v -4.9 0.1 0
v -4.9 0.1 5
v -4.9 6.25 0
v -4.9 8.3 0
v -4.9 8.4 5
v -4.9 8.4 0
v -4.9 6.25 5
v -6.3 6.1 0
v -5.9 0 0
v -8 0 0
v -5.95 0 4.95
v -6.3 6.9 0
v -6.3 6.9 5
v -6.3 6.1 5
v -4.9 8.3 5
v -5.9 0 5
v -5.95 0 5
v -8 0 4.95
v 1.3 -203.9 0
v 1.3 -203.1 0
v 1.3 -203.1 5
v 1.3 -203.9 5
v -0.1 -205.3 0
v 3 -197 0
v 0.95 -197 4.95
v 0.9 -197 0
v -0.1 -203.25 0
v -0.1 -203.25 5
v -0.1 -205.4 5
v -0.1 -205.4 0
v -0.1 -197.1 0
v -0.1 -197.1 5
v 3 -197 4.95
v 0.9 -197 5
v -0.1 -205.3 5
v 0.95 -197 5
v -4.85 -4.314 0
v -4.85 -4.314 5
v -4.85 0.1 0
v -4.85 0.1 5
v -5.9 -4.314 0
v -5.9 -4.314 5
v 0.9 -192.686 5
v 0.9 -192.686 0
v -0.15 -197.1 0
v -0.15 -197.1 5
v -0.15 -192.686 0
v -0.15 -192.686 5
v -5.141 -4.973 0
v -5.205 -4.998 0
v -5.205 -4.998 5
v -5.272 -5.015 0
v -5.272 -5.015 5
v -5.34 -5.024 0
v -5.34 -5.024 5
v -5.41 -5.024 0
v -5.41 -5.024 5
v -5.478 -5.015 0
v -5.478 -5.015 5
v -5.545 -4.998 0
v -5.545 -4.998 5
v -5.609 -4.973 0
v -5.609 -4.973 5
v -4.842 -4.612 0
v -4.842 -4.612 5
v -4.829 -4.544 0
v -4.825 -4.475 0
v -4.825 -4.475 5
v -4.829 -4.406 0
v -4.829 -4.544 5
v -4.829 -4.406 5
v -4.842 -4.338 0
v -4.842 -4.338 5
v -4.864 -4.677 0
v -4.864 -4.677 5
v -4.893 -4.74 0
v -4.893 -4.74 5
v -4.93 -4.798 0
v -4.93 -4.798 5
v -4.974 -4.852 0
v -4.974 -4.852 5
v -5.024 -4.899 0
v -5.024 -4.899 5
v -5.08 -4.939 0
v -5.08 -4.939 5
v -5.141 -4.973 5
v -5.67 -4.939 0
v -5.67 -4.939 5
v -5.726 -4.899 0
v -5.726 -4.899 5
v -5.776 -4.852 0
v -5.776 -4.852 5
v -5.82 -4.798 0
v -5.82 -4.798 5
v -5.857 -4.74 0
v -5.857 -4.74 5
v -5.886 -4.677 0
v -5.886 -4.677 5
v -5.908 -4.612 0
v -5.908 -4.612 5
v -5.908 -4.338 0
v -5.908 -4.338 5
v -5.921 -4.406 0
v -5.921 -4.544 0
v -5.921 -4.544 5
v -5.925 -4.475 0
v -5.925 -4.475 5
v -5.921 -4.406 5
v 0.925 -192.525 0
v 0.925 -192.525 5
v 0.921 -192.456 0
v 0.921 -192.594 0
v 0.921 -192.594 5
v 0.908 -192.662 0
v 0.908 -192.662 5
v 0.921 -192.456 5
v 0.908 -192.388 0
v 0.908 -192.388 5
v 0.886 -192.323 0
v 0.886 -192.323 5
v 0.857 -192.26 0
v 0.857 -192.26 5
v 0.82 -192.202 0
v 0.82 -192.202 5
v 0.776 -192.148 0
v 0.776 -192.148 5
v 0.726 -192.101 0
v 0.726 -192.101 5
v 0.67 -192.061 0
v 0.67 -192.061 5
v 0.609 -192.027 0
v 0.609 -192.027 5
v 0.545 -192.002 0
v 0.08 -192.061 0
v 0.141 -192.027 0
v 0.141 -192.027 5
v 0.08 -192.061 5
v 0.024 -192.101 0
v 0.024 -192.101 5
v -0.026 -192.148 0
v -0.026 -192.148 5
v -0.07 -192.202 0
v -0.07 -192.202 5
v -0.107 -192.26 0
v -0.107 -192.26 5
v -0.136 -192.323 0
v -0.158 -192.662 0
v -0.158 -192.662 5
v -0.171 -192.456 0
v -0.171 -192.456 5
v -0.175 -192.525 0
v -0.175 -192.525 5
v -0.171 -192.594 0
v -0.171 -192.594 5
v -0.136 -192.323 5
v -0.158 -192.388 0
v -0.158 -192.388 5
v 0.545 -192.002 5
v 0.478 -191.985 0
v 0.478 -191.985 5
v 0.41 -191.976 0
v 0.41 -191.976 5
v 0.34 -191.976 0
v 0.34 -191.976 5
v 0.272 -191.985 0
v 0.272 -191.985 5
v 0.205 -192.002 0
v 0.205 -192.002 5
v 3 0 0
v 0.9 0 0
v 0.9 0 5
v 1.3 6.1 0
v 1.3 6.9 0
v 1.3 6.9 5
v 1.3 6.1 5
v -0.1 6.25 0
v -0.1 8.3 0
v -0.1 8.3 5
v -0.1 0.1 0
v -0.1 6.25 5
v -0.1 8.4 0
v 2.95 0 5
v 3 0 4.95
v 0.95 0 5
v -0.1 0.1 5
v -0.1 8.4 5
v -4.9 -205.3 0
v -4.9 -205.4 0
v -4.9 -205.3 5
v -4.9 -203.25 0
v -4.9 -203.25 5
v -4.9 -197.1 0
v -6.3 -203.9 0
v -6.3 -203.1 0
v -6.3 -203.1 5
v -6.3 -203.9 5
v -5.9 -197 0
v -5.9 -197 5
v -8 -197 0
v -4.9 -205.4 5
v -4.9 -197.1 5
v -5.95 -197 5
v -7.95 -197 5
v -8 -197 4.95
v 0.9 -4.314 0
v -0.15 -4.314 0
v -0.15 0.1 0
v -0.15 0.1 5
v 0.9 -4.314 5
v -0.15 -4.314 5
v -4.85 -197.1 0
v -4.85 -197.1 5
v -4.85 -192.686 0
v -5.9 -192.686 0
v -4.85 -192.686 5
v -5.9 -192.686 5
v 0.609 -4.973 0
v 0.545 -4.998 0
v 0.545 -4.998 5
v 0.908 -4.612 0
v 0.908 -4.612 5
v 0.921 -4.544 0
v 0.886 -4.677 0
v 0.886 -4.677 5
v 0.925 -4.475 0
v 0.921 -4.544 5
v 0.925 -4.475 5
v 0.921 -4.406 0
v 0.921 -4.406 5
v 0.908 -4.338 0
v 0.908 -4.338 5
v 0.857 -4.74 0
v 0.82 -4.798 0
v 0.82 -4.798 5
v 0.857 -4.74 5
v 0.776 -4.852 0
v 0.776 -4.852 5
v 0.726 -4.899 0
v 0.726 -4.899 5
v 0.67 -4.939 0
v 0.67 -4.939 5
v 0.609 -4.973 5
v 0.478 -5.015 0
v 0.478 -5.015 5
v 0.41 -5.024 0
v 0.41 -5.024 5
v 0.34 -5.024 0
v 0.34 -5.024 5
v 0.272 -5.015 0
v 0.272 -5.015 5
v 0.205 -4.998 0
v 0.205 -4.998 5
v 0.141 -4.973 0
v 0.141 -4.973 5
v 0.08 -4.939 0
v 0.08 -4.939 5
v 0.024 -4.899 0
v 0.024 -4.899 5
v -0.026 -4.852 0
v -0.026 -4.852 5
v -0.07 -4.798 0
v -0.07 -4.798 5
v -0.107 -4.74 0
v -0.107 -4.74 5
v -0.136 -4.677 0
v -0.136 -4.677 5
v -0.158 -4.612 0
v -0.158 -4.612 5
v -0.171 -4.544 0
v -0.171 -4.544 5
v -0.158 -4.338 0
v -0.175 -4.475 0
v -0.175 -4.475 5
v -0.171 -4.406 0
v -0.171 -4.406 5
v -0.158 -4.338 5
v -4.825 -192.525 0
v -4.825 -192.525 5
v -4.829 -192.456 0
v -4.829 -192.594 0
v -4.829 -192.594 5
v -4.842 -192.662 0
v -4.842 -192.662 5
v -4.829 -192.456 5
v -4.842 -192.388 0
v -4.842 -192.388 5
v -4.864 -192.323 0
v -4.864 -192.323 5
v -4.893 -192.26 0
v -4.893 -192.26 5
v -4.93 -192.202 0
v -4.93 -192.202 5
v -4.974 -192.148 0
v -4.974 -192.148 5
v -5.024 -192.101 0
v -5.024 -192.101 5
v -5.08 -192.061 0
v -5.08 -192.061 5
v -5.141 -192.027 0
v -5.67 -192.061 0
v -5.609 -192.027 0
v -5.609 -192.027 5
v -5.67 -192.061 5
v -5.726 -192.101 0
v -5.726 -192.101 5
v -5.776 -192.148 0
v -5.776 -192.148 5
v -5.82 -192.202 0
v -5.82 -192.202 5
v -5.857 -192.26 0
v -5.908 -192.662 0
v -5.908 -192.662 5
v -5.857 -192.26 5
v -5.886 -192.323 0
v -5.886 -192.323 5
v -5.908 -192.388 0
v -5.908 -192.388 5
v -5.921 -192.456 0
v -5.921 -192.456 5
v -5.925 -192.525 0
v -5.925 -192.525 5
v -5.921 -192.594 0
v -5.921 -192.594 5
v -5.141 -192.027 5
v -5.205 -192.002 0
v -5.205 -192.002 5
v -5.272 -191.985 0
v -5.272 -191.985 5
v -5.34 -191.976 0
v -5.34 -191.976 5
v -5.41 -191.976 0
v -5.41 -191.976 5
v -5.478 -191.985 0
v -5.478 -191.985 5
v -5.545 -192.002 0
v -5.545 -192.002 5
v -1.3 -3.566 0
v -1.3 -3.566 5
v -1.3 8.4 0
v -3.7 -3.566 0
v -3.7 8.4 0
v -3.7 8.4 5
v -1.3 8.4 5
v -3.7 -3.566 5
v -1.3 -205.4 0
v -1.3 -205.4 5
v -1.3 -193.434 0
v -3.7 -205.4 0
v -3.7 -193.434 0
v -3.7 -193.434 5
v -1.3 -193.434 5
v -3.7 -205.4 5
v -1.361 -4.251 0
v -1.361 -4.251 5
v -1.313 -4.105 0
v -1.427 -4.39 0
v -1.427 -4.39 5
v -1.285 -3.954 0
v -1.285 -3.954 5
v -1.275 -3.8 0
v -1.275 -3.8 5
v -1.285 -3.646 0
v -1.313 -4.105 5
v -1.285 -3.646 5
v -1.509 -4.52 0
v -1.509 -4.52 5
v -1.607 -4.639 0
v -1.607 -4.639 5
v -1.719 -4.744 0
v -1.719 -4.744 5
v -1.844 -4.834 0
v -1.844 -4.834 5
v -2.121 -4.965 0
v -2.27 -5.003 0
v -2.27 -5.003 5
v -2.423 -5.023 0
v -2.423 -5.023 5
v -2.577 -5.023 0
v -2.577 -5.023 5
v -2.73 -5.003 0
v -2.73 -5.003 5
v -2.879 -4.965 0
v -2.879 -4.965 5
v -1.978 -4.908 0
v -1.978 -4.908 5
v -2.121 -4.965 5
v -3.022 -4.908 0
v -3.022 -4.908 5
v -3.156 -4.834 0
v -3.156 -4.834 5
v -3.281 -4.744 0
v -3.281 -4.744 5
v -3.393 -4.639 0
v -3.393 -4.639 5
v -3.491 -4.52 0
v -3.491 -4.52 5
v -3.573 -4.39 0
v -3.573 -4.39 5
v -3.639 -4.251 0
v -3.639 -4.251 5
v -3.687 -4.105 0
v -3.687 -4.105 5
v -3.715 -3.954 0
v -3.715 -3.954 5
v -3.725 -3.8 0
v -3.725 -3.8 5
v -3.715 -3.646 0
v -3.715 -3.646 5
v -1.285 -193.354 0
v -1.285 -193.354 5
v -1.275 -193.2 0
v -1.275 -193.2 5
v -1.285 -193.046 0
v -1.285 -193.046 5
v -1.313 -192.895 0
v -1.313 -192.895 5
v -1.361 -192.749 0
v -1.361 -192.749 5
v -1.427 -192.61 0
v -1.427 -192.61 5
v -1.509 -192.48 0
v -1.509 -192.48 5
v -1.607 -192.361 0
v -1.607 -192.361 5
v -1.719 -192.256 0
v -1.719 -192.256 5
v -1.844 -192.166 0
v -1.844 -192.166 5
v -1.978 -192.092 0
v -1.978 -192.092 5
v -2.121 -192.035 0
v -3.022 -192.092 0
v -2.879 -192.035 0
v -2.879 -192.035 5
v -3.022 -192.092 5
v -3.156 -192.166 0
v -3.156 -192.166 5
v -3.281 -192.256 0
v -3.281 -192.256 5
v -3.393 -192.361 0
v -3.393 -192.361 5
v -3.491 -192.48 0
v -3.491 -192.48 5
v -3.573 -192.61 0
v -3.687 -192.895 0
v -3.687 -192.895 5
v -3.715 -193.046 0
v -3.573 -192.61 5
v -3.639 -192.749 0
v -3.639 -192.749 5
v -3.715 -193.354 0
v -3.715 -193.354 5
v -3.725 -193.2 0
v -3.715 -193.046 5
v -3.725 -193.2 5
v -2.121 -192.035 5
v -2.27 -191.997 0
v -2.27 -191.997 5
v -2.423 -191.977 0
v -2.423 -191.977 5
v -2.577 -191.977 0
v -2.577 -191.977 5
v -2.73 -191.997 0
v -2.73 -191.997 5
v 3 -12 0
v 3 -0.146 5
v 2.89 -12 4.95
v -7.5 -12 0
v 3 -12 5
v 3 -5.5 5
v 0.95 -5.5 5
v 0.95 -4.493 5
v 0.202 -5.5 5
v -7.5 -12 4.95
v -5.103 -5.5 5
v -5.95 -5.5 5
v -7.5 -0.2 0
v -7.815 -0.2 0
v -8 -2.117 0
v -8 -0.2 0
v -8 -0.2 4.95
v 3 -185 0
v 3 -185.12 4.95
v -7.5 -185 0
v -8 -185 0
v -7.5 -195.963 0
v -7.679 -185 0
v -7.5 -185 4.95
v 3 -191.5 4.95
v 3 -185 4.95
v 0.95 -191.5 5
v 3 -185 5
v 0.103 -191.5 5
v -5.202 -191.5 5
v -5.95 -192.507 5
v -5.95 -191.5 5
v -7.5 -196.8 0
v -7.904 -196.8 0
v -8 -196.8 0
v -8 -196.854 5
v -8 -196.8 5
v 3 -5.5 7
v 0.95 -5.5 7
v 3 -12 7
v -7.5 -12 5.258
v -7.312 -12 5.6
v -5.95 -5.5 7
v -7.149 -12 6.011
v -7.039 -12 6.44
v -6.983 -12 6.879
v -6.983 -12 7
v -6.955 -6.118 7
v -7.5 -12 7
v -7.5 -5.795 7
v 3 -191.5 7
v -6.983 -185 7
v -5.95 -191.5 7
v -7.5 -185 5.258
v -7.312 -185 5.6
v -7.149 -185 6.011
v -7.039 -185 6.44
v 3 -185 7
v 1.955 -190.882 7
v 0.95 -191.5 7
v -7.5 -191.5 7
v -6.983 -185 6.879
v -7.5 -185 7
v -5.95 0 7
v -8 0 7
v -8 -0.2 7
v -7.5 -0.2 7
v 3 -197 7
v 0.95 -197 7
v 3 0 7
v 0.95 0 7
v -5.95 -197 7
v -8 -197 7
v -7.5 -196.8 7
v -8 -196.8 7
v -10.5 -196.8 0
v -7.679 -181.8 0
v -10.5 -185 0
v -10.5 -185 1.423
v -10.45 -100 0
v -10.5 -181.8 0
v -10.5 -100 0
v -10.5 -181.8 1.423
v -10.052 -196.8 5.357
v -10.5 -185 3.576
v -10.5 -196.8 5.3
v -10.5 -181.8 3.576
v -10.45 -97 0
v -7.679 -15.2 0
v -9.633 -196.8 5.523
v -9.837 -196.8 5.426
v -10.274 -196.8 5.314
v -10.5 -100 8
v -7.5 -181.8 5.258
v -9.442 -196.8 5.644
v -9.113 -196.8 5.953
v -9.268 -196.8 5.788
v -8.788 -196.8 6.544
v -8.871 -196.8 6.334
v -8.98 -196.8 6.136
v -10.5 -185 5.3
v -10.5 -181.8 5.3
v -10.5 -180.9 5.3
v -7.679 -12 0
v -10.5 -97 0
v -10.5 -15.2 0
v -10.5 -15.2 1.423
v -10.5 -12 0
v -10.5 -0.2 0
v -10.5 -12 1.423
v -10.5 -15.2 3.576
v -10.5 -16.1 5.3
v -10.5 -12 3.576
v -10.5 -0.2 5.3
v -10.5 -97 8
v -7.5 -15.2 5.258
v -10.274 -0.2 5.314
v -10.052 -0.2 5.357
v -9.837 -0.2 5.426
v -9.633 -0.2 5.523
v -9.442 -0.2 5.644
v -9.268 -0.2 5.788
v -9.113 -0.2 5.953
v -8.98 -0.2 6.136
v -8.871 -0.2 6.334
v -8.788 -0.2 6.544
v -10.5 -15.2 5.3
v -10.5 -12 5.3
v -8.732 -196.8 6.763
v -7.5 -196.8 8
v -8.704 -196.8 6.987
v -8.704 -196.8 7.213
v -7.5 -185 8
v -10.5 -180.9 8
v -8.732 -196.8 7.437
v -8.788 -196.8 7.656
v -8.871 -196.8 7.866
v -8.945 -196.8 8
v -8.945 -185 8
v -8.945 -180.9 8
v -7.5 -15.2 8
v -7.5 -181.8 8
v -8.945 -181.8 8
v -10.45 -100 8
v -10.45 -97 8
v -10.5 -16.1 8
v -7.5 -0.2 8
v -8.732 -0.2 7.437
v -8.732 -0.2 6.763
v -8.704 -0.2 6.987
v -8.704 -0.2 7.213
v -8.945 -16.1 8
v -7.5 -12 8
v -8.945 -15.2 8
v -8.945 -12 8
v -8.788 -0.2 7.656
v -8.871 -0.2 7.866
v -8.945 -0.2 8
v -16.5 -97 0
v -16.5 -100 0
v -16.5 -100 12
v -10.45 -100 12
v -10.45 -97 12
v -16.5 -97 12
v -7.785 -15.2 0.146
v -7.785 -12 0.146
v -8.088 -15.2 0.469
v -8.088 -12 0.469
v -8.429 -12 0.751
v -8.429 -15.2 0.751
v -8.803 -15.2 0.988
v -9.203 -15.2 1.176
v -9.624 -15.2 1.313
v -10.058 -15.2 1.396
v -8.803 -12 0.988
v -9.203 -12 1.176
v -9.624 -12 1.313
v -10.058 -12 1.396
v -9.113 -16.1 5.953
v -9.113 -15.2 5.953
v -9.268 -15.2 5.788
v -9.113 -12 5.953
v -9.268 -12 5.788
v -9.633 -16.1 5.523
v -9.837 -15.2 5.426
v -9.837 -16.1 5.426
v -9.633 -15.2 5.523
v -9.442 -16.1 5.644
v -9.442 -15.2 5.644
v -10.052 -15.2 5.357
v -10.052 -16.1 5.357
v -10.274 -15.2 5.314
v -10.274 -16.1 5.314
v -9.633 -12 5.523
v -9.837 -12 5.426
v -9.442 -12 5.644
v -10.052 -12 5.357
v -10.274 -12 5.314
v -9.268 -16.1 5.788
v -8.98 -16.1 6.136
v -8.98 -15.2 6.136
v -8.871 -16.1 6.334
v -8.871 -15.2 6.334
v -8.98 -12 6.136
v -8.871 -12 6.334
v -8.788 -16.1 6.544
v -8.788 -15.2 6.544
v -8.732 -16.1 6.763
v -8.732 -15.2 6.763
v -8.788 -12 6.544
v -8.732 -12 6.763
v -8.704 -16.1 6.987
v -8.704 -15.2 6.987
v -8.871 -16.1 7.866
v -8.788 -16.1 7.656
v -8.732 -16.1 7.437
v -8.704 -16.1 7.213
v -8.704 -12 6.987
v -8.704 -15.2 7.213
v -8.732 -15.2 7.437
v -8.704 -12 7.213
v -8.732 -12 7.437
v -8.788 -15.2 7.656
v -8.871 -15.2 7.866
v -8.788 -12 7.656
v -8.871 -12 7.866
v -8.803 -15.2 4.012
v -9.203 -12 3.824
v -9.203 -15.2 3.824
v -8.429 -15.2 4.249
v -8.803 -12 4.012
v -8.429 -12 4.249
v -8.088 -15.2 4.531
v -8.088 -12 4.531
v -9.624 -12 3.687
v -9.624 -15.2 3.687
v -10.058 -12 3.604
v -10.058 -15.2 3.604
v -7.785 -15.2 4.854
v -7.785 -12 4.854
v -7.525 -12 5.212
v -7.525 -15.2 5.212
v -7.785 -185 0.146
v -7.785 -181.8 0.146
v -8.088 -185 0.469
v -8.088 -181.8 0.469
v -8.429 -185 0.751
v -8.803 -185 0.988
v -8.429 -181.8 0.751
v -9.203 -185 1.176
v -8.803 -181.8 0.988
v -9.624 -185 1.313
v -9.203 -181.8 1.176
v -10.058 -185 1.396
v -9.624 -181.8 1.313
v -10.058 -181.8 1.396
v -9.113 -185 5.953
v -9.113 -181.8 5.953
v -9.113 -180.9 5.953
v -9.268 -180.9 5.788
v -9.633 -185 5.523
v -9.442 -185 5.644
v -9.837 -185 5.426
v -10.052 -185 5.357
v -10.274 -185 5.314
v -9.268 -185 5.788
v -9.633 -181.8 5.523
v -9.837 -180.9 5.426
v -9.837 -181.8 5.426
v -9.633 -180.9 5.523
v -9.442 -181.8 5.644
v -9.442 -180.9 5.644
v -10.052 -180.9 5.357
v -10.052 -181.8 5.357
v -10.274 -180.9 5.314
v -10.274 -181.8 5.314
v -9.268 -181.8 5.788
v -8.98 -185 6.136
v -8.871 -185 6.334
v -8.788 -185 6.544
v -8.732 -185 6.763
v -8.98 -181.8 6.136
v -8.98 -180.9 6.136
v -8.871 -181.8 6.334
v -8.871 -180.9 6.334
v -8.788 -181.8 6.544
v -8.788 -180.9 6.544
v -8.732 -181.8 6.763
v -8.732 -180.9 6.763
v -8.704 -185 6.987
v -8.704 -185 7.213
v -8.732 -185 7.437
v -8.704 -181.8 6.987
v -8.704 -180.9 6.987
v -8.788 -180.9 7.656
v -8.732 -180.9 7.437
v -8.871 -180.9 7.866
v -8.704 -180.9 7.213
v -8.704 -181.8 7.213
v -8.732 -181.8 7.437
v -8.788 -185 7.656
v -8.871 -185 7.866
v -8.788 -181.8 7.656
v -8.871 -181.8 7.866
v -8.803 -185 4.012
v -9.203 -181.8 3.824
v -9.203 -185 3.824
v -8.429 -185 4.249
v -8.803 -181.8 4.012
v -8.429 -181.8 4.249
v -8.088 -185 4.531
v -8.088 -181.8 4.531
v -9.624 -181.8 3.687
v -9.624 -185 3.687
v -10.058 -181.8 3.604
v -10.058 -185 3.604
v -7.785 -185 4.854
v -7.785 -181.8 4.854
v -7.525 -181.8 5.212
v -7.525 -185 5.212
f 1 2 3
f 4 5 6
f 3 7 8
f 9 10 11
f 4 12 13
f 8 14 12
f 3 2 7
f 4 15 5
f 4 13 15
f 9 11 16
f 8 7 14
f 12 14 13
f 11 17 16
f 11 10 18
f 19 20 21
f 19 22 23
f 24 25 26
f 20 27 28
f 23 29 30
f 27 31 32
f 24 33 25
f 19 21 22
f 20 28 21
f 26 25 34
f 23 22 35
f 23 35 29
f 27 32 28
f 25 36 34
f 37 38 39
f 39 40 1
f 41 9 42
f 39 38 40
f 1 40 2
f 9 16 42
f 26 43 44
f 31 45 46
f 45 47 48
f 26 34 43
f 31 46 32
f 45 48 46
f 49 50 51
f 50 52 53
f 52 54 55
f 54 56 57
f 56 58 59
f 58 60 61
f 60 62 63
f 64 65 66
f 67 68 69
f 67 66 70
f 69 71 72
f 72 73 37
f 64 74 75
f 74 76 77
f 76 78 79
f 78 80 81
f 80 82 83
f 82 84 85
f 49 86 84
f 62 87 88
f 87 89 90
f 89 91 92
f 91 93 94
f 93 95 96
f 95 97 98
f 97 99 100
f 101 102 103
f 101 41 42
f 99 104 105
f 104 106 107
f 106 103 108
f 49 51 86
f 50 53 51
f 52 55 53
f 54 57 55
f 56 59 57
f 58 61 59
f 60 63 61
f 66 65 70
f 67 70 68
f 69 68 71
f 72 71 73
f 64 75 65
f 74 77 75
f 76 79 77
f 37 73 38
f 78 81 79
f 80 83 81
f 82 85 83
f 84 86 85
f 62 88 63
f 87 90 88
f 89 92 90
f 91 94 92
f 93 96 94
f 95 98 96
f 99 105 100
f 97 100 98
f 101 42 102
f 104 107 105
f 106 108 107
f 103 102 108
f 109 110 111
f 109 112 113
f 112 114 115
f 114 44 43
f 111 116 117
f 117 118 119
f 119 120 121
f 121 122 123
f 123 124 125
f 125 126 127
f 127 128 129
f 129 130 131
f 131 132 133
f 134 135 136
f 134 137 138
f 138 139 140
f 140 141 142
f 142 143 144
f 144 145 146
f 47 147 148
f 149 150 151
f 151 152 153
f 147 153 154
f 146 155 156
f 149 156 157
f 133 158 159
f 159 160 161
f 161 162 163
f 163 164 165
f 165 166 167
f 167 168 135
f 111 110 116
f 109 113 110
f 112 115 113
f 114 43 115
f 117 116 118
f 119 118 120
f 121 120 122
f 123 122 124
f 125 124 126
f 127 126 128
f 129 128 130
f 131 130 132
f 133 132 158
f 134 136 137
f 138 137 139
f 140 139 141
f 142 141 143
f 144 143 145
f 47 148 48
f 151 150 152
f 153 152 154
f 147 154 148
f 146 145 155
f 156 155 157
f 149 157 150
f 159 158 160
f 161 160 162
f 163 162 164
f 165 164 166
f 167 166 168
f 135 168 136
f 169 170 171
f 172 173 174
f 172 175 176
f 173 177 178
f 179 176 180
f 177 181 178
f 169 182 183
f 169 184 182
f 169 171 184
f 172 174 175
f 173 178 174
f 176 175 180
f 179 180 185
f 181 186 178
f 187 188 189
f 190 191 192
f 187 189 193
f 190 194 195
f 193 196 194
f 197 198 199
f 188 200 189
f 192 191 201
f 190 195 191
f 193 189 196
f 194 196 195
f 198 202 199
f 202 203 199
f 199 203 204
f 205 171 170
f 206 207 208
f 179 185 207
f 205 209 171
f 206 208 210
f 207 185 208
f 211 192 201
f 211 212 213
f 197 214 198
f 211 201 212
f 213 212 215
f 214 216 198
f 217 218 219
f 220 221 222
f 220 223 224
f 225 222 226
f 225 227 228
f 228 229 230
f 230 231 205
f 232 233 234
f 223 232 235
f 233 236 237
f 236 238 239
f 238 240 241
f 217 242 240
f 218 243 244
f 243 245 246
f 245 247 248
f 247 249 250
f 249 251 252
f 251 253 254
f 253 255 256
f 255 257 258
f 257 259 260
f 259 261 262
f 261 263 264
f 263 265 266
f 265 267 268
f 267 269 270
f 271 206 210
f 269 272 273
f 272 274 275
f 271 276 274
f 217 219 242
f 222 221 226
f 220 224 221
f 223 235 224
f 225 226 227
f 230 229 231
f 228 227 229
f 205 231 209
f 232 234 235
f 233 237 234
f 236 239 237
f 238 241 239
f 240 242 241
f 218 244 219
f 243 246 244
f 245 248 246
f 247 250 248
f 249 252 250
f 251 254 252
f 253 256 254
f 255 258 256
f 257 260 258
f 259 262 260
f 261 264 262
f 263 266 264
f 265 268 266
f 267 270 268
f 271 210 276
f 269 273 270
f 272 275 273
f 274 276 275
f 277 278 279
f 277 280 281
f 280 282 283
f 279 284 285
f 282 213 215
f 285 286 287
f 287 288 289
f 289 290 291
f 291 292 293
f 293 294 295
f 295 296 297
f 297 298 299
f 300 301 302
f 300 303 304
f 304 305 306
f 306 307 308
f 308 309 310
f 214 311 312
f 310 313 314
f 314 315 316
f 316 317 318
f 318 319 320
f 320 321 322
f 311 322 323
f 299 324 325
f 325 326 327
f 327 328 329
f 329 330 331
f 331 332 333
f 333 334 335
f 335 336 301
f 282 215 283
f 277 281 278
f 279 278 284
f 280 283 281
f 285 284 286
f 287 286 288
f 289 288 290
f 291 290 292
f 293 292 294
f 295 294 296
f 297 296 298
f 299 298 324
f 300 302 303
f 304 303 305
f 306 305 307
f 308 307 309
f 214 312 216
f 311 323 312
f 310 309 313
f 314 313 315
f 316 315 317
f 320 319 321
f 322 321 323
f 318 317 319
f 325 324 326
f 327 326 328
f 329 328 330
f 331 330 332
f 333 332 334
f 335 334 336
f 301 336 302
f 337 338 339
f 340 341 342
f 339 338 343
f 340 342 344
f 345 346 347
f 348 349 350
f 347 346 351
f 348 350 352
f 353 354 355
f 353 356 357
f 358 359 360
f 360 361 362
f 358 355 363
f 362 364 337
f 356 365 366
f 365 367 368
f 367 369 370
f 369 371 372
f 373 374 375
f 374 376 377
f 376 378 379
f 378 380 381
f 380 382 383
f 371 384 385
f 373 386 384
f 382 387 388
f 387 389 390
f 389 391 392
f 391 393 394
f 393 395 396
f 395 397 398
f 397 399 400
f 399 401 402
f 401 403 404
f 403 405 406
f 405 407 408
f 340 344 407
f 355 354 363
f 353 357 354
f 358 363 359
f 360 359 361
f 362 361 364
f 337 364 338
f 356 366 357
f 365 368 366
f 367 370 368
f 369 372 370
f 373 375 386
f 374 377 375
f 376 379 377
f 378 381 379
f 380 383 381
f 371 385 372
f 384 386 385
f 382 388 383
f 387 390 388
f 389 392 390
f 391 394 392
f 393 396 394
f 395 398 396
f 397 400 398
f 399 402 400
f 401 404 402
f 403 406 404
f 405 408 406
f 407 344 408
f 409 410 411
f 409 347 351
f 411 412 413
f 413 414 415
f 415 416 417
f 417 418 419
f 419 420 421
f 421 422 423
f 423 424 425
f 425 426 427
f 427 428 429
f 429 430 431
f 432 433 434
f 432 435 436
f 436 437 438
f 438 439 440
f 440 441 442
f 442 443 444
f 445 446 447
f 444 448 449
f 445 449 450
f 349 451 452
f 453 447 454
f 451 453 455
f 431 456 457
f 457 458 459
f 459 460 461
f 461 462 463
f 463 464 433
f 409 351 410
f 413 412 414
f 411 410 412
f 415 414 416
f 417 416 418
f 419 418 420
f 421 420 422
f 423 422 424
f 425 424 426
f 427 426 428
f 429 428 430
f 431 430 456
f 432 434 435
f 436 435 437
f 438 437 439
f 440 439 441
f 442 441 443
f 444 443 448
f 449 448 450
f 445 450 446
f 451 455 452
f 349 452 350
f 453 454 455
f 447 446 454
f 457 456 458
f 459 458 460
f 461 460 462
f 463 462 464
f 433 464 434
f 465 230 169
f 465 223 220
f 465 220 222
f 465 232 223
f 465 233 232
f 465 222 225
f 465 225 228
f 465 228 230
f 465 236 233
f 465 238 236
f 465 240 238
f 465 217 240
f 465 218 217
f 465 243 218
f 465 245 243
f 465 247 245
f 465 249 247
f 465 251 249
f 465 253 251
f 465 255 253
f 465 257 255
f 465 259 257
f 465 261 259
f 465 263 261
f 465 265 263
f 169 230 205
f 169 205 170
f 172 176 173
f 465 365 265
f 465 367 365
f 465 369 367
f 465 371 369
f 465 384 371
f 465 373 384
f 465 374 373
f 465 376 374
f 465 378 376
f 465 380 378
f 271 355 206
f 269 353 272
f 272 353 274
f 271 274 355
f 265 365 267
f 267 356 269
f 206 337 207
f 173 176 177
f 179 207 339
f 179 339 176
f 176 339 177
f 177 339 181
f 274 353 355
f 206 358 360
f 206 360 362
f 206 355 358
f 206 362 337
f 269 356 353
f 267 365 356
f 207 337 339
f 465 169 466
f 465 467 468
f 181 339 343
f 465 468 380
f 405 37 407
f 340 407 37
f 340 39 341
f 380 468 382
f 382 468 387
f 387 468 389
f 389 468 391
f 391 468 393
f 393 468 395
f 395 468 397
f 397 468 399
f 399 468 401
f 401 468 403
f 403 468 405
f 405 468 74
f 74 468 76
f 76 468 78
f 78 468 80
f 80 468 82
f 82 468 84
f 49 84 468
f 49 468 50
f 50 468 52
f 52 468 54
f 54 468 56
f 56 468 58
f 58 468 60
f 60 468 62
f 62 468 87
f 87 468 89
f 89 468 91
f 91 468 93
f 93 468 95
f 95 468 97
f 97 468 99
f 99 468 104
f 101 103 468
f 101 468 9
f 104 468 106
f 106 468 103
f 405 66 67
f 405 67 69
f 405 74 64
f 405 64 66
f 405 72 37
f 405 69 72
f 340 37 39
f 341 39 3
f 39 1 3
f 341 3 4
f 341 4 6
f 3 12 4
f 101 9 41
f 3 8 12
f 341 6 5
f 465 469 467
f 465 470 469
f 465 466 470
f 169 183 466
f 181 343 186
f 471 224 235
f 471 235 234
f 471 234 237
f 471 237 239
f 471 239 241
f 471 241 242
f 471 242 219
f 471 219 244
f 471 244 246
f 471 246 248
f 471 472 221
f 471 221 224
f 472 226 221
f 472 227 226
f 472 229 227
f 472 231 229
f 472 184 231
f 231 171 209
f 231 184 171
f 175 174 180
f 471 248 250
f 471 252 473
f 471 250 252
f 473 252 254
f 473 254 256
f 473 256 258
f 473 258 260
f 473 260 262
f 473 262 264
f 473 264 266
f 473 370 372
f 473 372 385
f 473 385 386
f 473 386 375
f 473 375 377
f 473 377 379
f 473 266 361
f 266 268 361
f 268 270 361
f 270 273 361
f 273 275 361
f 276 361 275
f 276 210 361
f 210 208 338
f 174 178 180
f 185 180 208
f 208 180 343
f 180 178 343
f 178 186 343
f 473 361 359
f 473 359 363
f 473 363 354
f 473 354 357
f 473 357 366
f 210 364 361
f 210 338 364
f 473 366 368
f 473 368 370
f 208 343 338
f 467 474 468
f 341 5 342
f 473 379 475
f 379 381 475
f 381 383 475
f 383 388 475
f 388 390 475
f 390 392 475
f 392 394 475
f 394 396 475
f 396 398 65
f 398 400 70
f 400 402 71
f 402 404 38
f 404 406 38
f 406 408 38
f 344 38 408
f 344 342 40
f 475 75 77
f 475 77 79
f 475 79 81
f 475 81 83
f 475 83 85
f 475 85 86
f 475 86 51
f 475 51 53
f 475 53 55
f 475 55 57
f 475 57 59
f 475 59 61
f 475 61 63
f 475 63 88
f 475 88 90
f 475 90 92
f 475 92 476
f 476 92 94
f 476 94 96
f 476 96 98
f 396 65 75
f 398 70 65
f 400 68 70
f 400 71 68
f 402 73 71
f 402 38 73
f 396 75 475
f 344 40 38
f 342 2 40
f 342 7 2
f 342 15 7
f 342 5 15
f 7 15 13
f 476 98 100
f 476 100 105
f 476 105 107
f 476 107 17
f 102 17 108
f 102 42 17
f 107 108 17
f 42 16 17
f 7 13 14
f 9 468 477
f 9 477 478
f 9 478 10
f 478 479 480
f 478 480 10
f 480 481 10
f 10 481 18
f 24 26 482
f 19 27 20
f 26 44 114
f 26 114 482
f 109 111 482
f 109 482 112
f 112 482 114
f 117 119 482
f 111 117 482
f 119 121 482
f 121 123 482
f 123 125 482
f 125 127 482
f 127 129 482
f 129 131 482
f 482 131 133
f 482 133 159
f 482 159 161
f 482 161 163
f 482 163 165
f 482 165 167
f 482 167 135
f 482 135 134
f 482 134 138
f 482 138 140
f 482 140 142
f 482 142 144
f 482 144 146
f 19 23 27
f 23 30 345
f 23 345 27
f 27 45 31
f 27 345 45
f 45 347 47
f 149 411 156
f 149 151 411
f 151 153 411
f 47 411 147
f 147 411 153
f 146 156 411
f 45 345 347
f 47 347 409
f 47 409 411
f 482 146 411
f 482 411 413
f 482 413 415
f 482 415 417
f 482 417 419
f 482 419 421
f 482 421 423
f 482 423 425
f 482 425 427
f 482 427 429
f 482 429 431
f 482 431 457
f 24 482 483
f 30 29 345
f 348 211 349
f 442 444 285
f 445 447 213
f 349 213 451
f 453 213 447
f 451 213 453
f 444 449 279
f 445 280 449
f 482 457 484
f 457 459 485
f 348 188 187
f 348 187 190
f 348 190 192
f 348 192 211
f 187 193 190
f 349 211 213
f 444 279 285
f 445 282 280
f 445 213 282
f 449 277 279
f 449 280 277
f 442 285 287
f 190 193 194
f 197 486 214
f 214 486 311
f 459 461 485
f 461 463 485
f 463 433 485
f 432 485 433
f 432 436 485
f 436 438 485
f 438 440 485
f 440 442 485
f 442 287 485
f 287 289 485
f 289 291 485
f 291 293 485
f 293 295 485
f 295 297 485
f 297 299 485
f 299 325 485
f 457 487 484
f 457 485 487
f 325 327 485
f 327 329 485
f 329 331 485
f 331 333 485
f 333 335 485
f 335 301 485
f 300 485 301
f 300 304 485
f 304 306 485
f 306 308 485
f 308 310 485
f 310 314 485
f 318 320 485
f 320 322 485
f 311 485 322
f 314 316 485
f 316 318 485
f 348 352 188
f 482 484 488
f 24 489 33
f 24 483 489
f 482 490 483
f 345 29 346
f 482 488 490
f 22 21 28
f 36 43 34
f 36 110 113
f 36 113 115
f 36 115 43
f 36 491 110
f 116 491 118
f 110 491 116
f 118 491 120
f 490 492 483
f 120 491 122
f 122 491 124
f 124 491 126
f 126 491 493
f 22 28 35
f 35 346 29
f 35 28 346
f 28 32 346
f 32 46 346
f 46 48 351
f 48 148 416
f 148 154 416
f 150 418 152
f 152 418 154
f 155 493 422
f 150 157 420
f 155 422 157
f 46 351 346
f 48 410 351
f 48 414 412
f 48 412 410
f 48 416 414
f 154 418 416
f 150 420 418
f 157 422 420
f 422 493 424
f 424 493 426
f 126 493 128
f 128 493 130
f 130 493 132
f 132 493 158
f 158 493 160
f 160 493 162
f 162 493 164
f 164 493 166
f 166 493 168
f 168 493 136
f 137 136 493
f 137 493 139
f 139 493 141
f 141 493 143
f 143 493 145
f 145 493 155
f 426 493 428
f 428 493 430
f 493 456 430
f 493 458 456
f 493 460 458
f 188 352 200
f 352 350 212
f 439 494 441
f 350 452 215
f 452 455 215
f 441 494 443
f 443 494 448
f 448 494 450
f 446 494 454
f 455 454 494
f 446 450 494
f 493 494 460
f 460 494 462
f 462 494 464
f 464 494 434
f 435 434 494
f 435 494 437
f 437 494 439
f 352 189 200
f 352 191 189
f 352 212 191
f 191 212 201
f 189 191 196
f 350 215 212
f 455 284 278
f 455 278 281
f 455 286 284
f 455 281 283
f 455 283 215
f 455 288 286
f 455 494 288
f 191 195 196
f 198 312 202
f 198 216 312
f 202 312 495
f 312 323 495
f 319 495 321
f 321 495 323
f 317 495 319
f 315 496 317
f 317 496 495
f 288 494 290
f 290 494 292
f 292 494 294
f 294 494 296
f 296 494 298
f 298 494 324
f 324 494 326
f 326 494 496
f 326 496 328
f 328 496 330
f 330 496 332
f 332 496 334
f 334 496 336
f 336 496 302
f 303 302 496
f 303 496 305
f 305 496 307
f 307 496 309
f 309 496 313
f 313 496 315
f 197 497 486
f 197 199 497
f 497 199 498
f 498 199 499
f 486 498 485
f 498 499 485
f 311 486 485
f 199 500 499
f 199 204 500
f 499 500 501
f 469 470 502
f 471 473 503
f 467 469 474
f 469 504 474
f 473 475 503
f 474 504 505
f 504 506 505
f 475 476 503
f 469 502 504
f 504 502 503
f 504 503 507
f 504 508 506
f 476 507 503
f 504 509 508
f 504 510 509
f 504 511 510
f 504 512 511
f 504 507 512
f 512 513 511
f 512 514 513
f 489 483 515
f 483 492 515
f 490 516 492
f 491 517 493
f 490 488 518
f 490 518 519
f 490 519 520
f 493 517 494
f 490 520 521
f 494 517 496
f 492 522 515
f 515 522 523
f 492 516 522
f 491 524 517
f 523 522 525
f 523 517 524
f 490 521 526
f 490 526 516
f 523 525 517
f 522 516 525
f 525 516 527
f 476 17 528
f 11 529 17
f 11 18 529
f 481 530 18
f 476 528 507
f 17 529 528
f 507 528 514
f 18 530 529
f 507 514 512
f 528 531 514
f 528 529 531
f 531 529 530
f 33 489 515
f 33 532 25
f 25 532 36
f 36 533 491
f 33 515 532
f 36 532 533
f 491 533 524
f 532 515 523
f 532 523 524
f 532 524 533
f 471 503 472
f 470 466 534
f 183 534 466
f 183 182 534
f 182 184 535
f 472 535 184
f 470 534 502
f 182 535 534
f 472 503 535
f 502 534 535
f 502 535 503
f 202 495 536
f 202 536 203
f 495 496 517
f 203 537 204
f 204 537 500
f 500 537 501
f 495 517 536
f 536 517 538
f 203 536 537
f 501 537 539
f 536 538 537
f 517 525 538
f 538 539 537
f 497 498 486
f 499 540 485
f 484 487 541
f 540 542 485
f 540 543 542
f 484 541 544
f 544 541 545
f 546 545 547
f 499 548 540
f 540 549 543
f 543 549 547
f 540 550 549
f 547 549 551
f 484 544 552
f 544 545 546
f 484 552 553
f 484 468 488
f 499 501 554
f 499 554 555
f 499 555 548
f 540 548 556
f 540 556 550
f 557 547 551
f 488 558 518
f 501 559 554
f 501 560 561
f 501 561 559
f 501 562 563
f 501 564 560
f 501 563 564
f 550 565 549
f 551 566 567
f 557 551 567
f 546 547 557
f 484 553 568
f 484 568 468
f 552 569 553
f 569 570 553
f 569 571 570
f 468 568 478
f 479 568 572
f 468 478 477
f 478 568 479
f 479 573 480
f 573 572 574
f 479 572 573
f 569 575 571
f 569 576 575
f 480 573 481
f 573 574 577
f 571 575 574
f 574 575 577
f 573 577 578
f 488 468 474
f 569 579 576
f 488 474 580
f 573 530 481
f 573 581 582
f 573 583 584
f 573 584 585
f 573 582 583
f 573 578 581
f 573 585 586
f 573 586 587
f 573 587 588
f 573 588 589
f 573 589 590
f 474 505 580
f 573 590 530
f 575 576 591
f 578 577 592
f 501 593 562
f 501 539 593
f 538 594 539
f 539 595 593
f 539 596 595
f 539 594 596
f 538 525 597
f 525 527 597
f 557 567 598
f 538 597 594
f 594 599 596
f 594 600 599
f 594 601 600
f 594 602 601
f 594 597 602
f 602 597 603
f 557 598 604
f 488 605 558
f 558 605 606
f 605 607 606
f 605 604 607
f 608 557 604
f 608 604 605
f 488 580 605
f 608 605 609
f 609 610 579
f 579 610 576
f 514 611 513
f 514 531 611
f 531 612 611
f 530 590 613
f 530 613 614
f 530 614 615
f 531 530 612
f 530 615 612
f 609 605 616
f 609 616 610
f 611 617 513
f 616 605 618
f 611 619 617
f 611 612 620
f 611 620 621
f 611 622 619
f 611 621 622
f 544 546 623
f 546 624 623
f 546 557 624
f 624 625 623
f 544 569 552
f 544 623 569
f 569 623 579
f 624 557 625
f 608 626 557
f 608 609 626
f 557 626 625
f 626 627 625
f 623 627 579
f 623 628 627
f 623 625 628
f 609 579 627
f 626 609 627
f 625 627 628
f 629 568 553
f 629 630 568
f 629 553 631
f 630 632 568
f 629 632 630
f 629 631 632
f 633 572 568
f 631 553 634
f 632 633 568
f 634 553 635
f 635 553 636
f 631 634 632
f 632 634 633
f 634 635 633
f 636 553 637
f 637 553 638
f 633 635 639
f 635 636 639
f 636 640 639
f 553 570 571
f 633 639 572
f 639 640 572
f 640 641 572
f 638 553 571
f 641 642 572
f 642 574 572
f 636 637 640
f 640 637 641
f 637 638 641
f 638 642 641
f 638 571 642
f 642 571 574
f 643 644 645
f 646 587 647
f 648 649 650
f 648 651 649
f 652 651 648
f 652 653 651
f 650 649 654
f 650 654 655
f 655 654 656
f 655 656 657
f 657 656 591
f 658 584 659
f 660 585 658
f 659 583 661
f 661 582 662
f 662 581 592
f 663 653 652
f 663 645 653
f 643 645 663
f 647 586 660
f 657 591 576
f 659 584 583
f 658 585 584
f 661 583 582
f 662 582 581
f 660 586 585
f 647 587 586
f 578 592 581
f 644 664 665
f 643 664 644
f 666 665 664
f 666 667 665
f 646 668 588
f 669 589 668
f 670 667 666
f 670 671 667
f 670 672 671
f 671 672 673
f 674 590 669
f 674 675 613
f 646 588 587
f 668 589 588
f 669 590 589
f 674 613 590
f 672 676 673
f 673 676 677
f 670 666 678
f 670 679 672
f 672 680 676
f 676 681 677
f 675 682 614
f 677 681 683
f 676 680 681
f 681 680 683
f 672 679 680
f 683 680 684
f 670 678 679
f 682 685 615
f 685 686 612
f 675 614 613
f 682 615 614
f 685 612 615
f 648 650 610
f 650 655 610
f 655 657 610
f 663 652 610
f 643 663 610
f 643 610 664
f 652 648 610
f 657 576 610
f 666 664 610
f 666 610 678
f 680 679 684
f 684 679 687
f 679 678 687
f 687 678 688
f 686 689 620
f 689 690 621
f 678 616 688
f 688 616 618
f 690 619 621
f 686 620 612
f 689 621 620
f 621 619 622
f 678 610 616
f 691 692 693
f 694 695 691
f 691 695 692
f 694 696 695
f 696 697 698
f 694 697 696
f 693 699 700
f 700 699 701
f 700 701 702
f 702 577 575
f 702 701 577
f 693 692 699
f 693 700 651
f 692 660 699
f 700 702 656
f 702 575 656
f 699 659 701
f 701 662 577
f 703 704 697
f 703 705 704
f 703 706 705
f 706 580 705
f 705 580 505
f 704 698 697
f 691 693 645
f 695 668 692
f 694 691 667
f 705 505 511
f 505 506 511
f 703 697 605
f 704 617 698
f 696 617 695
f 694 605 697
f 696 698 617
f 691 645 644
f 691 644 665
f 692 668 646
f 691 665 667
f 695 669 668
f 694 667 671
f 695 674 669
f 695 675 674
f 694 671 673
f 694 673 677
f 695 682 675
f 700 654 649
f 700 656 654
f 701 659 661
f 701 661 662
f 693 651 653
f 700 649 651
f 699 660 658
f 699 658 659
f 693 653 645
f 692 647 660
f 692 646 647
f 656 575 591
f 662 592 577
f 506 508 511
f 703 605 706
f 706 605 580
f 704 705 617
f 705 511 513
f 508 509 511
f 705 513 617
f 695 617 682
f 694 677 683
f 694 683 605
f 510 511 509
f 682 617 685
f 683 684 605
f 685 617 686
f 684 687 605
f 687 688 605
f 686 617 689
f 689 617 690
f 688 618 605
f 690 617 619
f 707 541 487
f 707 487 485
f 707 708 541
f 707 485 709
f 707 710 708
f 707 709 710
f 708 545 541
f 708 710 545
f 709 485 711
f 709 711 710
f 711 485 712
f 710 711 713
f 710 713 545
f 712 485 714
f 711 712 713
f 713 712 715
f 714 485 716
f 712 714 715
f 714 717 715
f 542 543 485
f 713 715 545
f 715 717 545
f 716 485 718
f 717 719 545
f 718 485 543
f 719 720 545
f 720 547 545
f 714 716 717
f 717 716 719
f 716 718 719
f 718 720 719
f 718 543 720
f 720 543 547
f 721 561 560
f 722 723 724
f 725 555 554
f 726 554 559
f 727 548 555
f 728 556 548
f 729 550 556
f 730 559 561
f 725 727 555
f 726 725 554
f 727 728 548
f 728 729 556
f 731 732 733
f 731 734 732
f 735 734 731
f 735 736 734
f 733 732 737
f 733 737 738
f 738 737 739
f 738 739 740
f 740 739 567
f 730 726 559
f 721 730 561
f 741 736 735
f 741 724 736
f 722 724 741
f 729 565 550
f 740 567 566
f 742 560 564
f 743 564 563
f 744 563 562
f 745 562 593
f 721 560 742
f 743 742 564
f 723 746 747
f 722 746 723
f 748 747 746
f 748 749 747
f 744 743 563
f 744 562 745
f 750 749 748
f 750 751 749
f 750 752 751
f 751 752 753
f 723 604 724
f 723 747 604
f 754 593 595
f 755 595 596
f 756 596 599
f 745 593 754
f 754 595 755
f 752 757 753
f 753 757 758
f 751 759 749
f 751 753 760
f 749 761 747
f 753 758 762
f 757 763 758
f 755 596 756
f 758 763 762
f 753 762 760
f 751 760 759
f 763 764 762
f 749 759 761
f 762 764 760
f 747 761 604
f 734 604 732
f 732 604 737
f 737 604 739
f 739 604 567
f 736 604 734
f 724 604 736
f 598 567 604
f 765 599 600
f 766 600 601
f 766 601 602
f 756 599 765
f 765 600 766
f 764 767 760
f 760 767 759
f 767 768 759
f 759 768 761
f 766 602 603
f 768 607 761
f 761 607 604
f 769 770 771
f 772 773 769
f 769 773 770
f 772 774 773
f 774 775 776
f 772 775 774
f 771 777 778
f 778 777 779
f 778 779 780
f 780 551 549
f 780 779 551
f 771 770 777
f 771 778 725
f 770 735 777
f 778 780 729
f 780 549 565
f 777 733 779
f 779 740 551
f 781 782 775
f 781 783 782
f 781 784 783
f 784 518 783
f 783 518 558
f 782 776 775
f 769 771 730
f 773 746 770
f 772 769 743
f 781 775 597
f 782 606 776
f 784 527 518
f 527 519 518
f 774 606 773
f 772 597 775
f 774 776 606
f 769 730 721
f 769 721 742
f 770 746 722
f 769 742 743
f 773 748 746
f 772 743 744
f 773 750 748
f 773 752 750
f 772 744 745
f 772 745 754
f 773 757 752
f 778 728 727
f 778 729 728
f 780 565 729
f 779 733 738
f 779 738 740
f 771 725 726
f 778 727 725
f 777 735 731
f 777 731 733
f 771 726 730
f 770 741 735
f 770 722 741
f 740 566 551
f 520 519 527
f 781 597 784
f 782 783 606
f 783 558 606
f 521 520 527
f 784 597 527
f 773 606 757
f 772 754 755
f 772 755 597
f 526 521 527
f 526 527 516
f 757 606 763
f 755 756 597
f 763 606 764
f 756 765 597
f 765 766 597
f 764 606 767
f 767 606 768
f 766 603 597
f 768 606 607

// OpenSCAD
$fn = 50;

difference() {
	union() {
		translate(v = [0, 0, 0]) {
			rotate(a = [0, 0, 0]) {
				difference() {
					union() {
						translate(v = [0, 0, 2.5]) {
							rotate(a = [0, -90, 0]) {
								difference() {
									union() {
										translate(v = [0, 0, 0]) {
											rotate(a = [0, 0, 0]) {
												difference() {
													union() {
														translate(v = [-2.5, 0, 2.5]) {
															rotate(a = [0, 90.0, 0]) {
																difference() {
																	union() {
																		translate(v = [0, 0, 0]) {
																			rotate(a = [0, 0, 0]) {
																				difference() {
																					union() {
																						translate(v = [0, 0, 0]) {
																							rotate(a = [0, 0, 0]) {
																								difference() {
																									union() {
																										translate(v = [-5.5, -12.0, 0]) {
																											cube(size = [11.0, 20.4, 5.0]);
																										}
																									}
																									union() {
																										translate(v = [0, 0, -0.1]) {
																											linear_extrude(height = 5.2) {
																												polygon(points = [[-2.4, 0], [-2.4, 6.25], [-3.8, 6.1], [-3.8, 6.8999999999999995], [-2.4, 8.299999999999999], [-2.4, 9.399999999999999], [-5.7, 9.399999999999999], [-5.7, 0]]);
																											}
																										}
																										translate(v = [0, 0, -0.1]) {
																											linear_extrude(height = 5.2) {
																												polygon(points = [[-2.35, -4.5], [-2.35, -4.3875], [-2.35, -4.275], [-2.35, -4.1625], [-2.35, -4.05], [-2.35, -3.9375], [-2.35, -3.825], [-2.35, -3.7125], [-2.35, -3.6], [-2.35, -3.4875], [-2.35, -3.375], [-2.35, -3.2625], [-2.35, -3.15], [-2.35, -3.0375], [-2.35, -2.925], [-2.35, -2.8125], [-2.35, -2.7], [-2.35, -2.5875], [-2.35, -2.475], [-2.35, -2.3625], [-2.35, -2.25], [-2.35, -2.1375], [-2.35, -2.025], [-2.35, -1.9125], [-2.35, -1.7999999999999998], [-2.35, -1.6875], [-2.35, -1.5750000000000002], [-2.35, -1.4625], [-2.35, -1.35], [-2.35, -1.2374999999999998], [-2.35, -1.125], [-2.35, -1.0125000000000002], [-2.35, -0.8999999999999999], [-2.35, -0.7875000000000001], [-2.35, -0.6749999999999998], [-2.35, -0.5625], [-2.35, -0.4500000000000002], [-2.35, -0.33750000000000036], [-2.35, -0.22499999999999964], [-2.35, -0.11249999999999982], [-2.35, 0.0], [-2.35, 0.1], [-3.4, 0.1], [-3.4, -4.5]]);
																											}
																										}
																										translate(v = [-2.875, -4.475, -0.1]) {
																											cylinder(h = 5.2, r = 0.55);
																										}
																										translate(v = [0, 0, -0.1]) {
																											linear_extrude(height = 5.2) {
																												polygon(points = [[2.4, 0], [2.4, 6.25], [3.8, 6.1], [3.8, 6.8999999999999995], [2.4, 8.299999999999999], [2.4, 9.399999999999999], [5.7, 9.399999999999999], [5.7, 0]]);
																											}
																										}
																										translate(v = [0, 0, -0.1]) {
																											linear_extrude(height = 5.2) {
																												polygon(points = [[2.35, -4.5], [2.35, -4.3875], [2.35, -4.275], [2.35, -4.1625], [2.35, -4.05], [2.35, -3.9375], [2.35, -3.825], [2.35, -3.7125], [2.35, -3.6], [2.35, -3.4875], [2.35, -3.375], [2.35, -3.2625], [2.35, -3.15], [2.35, -3.0375], [2.35, -2.925], [2.35, -2.8125], [2.35, -2.7], [2.35, -2.5875], [2.35, -2.475], [2.35, -2.3625], [2.35, -2.25], [2.35, -2.1375], [2.35, -2.025], [2.35, -1.9125], [2.35, -1.7999999999999998], [2.35, -1.6875], [2.35, -1.5750000000000002], [2.35, -1.4625], [2.35, -1.35], [2.35, -1.2374999999999998], [2.35, -1.125], [2.35, -1.0125000000000002], [2.35, -0.8999999999999999], [2.35, -0.7875000000000001], [2.35, -0.6749999999999998], [2.35, -0.5625], [2.35, -0.4500000000000002], [2.35, -0.33750000000000036], [2.35, -0.22499999999999964], [2.35, -0.11249999999999982], [2.35, 0.0], [2.35, 0.1], [3.4, 0.1], [3.4, -4.5]]);
																											}
																										}
																										translate(v = [2.875, -4.475, -0.1]) {
																											cylinder(h = 5.2, r = 0.55);
																										}
																										translate(v = [0, 0, -0.1]) {
																											linear_extrude(height = 5.2) {
																												polygon(points = [[-1.2, -3.8499999999999996], [-1.2, -3.6607142857142856], [-1.2, -3.471428571428571], [-1.2, -3.2821428571428566], [-1.2, -3.0928571428571425], [-1.2, -2.9035714285714285], [-1.2, -2.714285714285714], [-1.2, -2.5249999999999995], [-1.2, -2.3357142857142854], [-1.2, -2.1464285714285714], [-1.2, -1.9571428571428569], [-1.2, -1.7678571428571423], [-1.2, -1.5785714285714283], [-1.2, -1.3892857142857138], [-1.2, -1.1999999999999997], [-1.2, -1.0107142857142852], [-1.2, -0.8214285714285712], [-1.2, -0.6321428571428567], [-1.2, -0.4428571428571426], [-1.2, -0.2535714285714281], [-1.2, -0.06428571428571406], [-1.2, 0], [-1.2, 0.12500000000000044], [-1.2, 0.31428571428571495], [-1.2, 0.503571428571429], [-1.2, 0.6928571428571431], [-1.2, 0.8821428571428571], [-1.2, 1.071428571428572], [-1.2, 1.2607142857142861], [-1.2, 1.4500000000000002], [-1.2, 1.6392857142857142], [-1.2, 1.8285714285714292], [-1.2, 2.0178571428571432], [-1.2, 2.2071428571428573], [-1.2, 2.3964285714285714], [-1.2, 2.5857142857142863], [-1.2, 2.7750000000000004], [-1.2, 2.9642857142857144], [-1.2, 3.1535714285714294], [-1.2, 3.3428571428571434], [-1.2, 3.5321428571428575], [-1.2, 3.7214285714285715], [-1.2, 3.9107142857142865], [-1.2, 4.1000000000000005], [-1.2, 4.289285714285715], [-1.2, 4.4785714285714295], [-1.2, 4.667857142857143], [-1.2, 4.857142857142858], [-1.2, 5.046428571428573], [-1.2, 5.235714285714286], [-1.2, 5.425000000000001], [-1.2, 5.614285714285714], [-1.2, 5.803571428571429], [-1.2, 5.992857142857144], [-1.2, 6.1], [-1.2, 6.182142857142857], [-1.2, 6.25], [-1.2, 6.371428571428572], [-1.2, 6.560714285714287], [-1.2, 6.75], [-1.2, 6.939285714285715], [-1.2, 7.128571428571428], [-1.2, 7.317857142857143], [-1.2, 7.507142857142858], [-1.2, 7.696428571428571], [-1.2, 7.885714285714286], [-1.2, 8.075000000000001], [-1.2, 8.264285714285714], [-1.2, 8.45357142857143], [-1.2, 8.642857142857142], [-1.2, 8.832142857142857], [-1.2, 9.021428571428572], [-1.2, 9.210714285714285], [-1.2, 9.4], [1.2, 9.4], [1.2, 9.210714285714285], [1.2, 9.021428571428572], [1.2, 8.832142857142857], [1.2, 8.642857142857142], [1.2, 8.45357142857143], [1.2, 8.264285714285714], [1.2, 8.075000000000001], [1.2, 7.885714285714286], [1.2, 7.696428571428571], [1.2, 7.507142857142858], [1.2, 7.317857142857143], [1.2, 7.128571428571428], [1.2, 6.939285714285715], [1.2, 6.75], [1.2, 6.560714285714287], [1.2, 6.371428571428572], [1.2, 6.25], [1.2, 6.182142857142857], [1.2, 6.1], [1.2, 5.992857142857144], [1.2, 5.803571428571429], [1.2, 5.614285714285714], [1.2, 5.425000000000001], [1.2, 5.235714285714286], [1.2, 5.046428571428573], [1.2, 4.857142857142858], [1.2, 4.667857142857143], [1.2, 4.4785714285714295], [1.2, 4.289285714285715], [1.2, 4.1000000000000005], [1.2, 3.9107142857142865], [1.2, 3.7214285714285715], [1.2, 3.5321428571428575], [1.2, 3.3428571428571434], [1.2, 3.1535714285714294], [1.2, 2.9642857142857144], [1.2, 2.7750000000000004], [1.2, 2.5857142857142863], [1.2, 2.3964285714285714], [1.2, 2.2071428571428573], [1.2, 2.0178571428571432], [1.2, 1.8285714285714292], [1.2, 1.6392857142857142], [1.2, 1.4500000000000002], [1.2, 1.2607142857142861], [1.2, 1.071428571428572], [1.2, 0.8821428571428571], [1.2, 0.6928571428571431], [1.2, 0.503571428571429], [1.2, 0.31428571428571495], [1.2, 0.12500000000000044], [1.2, 0], [1.2, -0.06428571428571406], [1.2, -0.2535714285714281], [1.2, -0.4428571428571426], [1.2, -0.6321428571428567], [1.2, -0.8214285714285712], [1.2, -1.0107142857142852], [1.2, -1.1999999999999997], [1.2, -1.3892857142857138], [1.2, -1.5785714285714283], [1.2, -1.7678571428571423], [1.2, -1.9571428571428569], [1.2, -2.1464285714285714], [1.2, -2.3357142857142854], [1.2, -2.5249999999999995], [1.2, -2.714285714285714], [1.2, -2.9035714285714285], [1.2, -3.0928571428571425], [1.2, -3.2821428571428566], [1.2, -3.471428571428571], [1.2, -3.6607142857142856], [1.2, -3.8499999999999996]]);
																											}
																										}
																										translate(v = [0, -3.8, -0.1]) {
																											cylinder(h = 5.2, r = 1.2249999999999999);
																										}
																									}
																								}
																							}
																						}
																						translate(v = [0, 0, 0]) {
																							rotate(a = [0, 0, 0]) {
																								difference() {
																									union() {
																										translate(v = [-5.5, -12.0, 4.95]) {
																											cube(size = [11.0, 6.5, 2.05]);
																										}
																									}
																									union();
																								}
																							}
																						}
																						translate(v = [-5.5, -12.0, 4.95]) {
																							cube(size = [2.0500000000000003, 12.0, 2.05]);
																						}
																						translate(v = [3.4499999999999997, -12.0, 4.95]) {
																							cube(size = [2.0500000000000003, 12.0, 2.05]);
																						}
																					}
																					union();
																				}
																			}
																		}
																	}
																	union();
																}
															}
														}
													}
													union();
												}
											}
										}
										translate(v = [-2.5, -197.0, 2.5]) {
											rotate(a = [180, -90, 0]) {
												difference() {
													union() {
														translate(v = [0, 0, 0]) {
															rotate(a = [0, 0, 0]) {
																difference() {
																	union() {
																		translate(v = [0, 0, 0]) {
																			rotate(a = [0, 0, 0]) {
																				difference() {
																					union() {
																						translate(v = [-5.5, -12.0, 0]) {
																							cube(size = [11.0, 20.4, 5.0]);
																						}
																					}
																					union() {
																						translate(v = [0, 0, -0.1]) {
																							linear_extrude(height = 5.2) {
																								polygon(points = [[-2.4, 0], [-2.4, 6.25], [-3.8, 6.1], [-3.8, 6.8999999999999995], [-2.4, 8.299999999999999], [-2.4, 9.399999999999999], [-5.7, 9.399999999999999], [-5.7, 0]]);
																							}
																						}
																						translate(v = [0, 0, -0.1]) {
																							linear_extrude(height = 5.2) {
																								polygon(points = [[-2.35, -4.5], [-2.35, -4.3875], [-2.35, -4.275], [-2.35, -4.1625], [-2.35, -4.05], [-2.35, -3.9375], [-2.35, -3.825], [-2.35, -3.7125], [-2.35, -3.6], [-2.35, -3.4875], [-2.35, -3.375], [-2.35, -3.2625], [-2.35, -3.15], [-2.35, -3.0375], [-2.35, -2.925], [-2.35, -2.8125], [-2.35, -2.7], [-2.35, -2.5875], [-2.35, -2.475], [-2.35, -2.3625], [-2.35, -2.25], [-2.35, -2.1375], [-2.35, -2.025], [-2.35, -1.9125], [-2.35, -1.7999999999999998], [-2.35, -1.6875], [-2.35, -1.5750000000000002], [-2.35, -1.4625], [-2.35, -1.35], [-2.35, -1.2374999999999998], [-2.35, -1.125], [-2.35, -1.0125000000000002], [-2.35, -0.8999999999999999], [-2.35, -0.7875000000000001], [-2.35, -0.6749999999999998], [-2.35, -0.5625], [-2.35, -0.4500000000000002], [-2.35, -0.33750000000000036], [-2.35, -0.22499999999999964], [-2.35, -0.11249999999999982], [-2.35, 0.0], [-2.35, 0.1], [-3.4, 0.1], [-3.4, -4.5]]);
																							}
																						}
																						translate(v = [-2.875, -4.475, -0.1]) {
																							cylinder(h = 5.2, r = 0.55);
																						}
																						translate(v = [0, 0, -0.1]) {
																							linear_extrude(height = 5.2) {
																								polygon(points = [[2.4, 0], [2.4, 6.25], [3.8, 6.1], [3.8, 6.8999999999999995], [2.4, 8.299999999999999], [2.4, 9.399999999999999], [5.7, 9.399999999999999], [5.7, 0]]);
																							}
																						}
																						translate(v = [0, 0, -0.1]) {
																							linear_extrude(height = 5.2) {
																								polygon(points = [[2.35, -4.5], [2.35, -4.3875], [2.35, -4.275], [2.35, -4.1625], [2.35, -4.05], [2.35, -3.9375], [2.35, -3.825], [2.35, -3.7125], [2.35, -3.6], [2.35, -3.4875], [2.35, -3.375], [2.35, -3.2625], [2.35, -3.15], [2.35, -3.0375], [2.35, -2.925], [2.35, -2.8125], [2.35, -2.7], [2.35, -2.5875], [2.35, -2.475], [2.35, -2.3625], [2.35, -2.25], [2.35, -2.1375], [2.35, -2.025], [2.35, -1.9125], [2.35, -1.7999999999999998], [2.35, -1.6875], [2.35, -1.5750000000000002], [2.35, -1.4625], [2.35, -1.35], [2.35, -1.2374999999999998], [2.35, -1.125], [2.35, -1.0125000000000002], [2.35, -0.8999999999999999], [2.35, -0.7875000000000001], [2.35, -0.6749999999999998], [2.35, -0.5625], [2.35, -0.4500000000000002], [2.35, -0.33750000000000036], [2.35, -0.22499999999999964], [2.35, -0.11249999999999982], [2.35, 0.0], [2.35, 0.1], [3.4, 0.1], [3.4, -4.5]]);
																							}
																						}
																						translate(v = [2.875, -4.475, -0.1]) {
																							cylinder(h = 5.2, r = 0.55);
																						}
																						translate(v = [0, 0, -0.1]) {
																							linear_extrude(height = 5.2) {
																								polygon(points = [[-1.2, -3.8499999999999996], [-1.2, -3.6607142857142856], [-1.2, -3.471428571428571], [-1.2, -3.2821428571428566], [-1.2, -3.0928571428571425], [-1.2, -2.9035714285714285], [-1.2, -2.714285714285714], [-1.2, -2.5249999999999995], [-1.2, -2.3357142857142854], [-1.2, -2.1464285714285714], [-1.2, -1.9571428571428569], [-1.2, -1.7678571428571423], [-1.2, -1.5785714285714283], [-1.2, -1.3892857142857138], [-1.2, -1.1999999999999997], [-1.2, -1.0107142857142852], [-1.2, -0.8214285714285712], [-1.2, -0.6321428571428567], [-1.2, -0.4428571428571426], [-1.2, -0.2535714285714281], [-1.2, -0.06428571428571406], [-1.2, 0], [-1.2, 0.12500000000000044], [-1.2, 0.31428571428571495], [-1.2, 0.503571428571429], [-1.2, 0.6928571428571431], [-1.2, 0.8821428571428571], [-1.2, 1.071428571428572], [-1.2, 1.2607142857142861], [-1.2, 1.4500000000000002], [-1.2, 1.6392857142857142], [-1.2, 1.8285714285714292], [-1.2, 2.0178571428571432], [-1.2, 2.2071428571428573], [-1.2, 2.3964285714285714], [-1.2, 2.5857142857142863], [-1.2, 2.7750000000000004], [-1.2, 2.9642857142857144], [-1.2, 3.1535714285714294], [-1.2, 3.3428571428571434], [-1.2, 3.5321428571428575], [-1.2, 3.7214285714285715], [-1.2, 3.9107142857142865], [-1.2, 4.1000000000000005], [-1.2, 4.289285714285715], [-1.2, 4.4785714285714295], [-1.2, 4.667857142857143], [-1.2, 4.857142857142858], [-1.2, 5.046428571428573], [-1.2, 5.235714285714286], [-1.2, 5.425000000000001], [-1.2, 5.614285714285714], [-1.2, 5.803571428571429], [-1.2, 5.992857142857144], [-1.2, 6.1], [-1.2, 6.182142857142857], [-1.2, 6.25], [-1.2, 6.371428571428572], [-1.2, 6.560714285714287], [-1.2, 6.75], [-1.2, 6.939285714285715], [-1.2, 7.128571428571428], [-1.2, 7.317857142857143], [-1.2, 7.507142857142858], [-1.2, 7.696428571428571], [-1.2, 7.885714285714286], [-1.2, 8.075000000000001], [-1.2, 8.264285714285714], [-1.2, 8.45357142857143], [-1.2, 8.642857142857142], [-1.2, 8.832142857142857], [-1.2, 9.021428571428572], [-1.2, 9.210714285714285], [-1.2, 9.4], [1.2, 9.4], [1.2, 9.210714285714285], [1.2, 9.021428571428572], [1.2, 8.832142857142857], [1.2, 8.642857142857142], [1.2, 8.45357142857143], [1.2, 8.264285714285714], [1.2, 8.075000000000001], [1.2, 7.885714285714286], [1.2, 7.696428571428571], [1.2, 7.507142857142858], [1.2, 7.317857142857143], [1.2, 7.128571428571428], [1.2, 6.939285714285715], [1.2, 6.75], [1.2, 6.560714285714287], [1.2, 6.371428571428572], [1.2, 6.25], [1.2, 6.182142857142857], [1.2, 6.1], [1.2, 5.992857142857144], [1.2, 5.803571428571429], [1.2, 5.614285714285714], [1.2, 5.425000000000001], [1.2, 5.235714285714286], [1.2, 5.046428571428573], [1.2, 4.857142857142858], [1.2, 4.667857142857143], [1.2, 4.4785714285714295], [1.2, 4.289285714285715], [1.2, 4.1000000000000005], [1.2, 3.9107142857142865], [1.2, 3.7214285714285715], [1.2, 3.5321428571428575], [1.2, 3.3428571428571434], [1.2, 3.1535714285714294], [1.2, 2.9642857142857144], [1.2, 2.7750000000000004], [1.2, 2.5857142857142863], [1.2, 2.3964285714285714], [1.2, 2.2071428571428573], [1.2, 2.0178571428571432], [1.2, 1.8285714285714292], [1.2, 1.6392857142857142], [1.2, 1.4500000000000002], [1.2, 1.2607142857142861], [1.2, 1.071428571428572], [1.2, 0.8821428571428571], [1.2, 0.6928571428571431], [1.2, 0.503571428571429], [1.2, 0.31428571428571495], [1.2, 0.12500000000000044], [1.2, 0], [1.2, -0.06428571428571406], [1.2, -0.2535714285714281], [1.2, -0.4428571428571426], [1.2, -0.6321428571428567], [1.2, -0.8214285714285712], [1.2, -1.0107142857142852], [1.2, -1.1999999999999997], [1.2, -1.3892857142857138], [1.2, -1.5785714285714283], [1.2, -1.7678571428571423], [1.2, -1.9571428571428569], [1.2, -2.1464285714285714], [1.2, -2.3357142857142854], [1.2, -2.5249999999999995], [1.2, -2.714285714285714], [1.2, -2.9035714285714285], [1.2, -3.0928571428571425], [1.2, -3.2821428571428566], [1.2, -3.471428571428571], [1.2, -3.6607142857142856], [1.2, -3.8499999999999996]]);
																							}
																						}
																						translate(v = [0, -3.8, -0.1]) {
																							cylinder(h = 5.2, r = 1.2249999999999999);
																						}
																					}
																				}
																			}
																		}
																		translate(v = [0, 0, 0]) {
																			rotate(a = [0, 0, 0]) {
																				difference() {
																					union() {
																						translate(v = [-5.5, -12.0, 4.95]) {
																							cube(size = [11.0, 6.5, 2.05]);
																						}
																					}
																					union();
																				}
																			}
																		}
																		translate(v = [-5.5, -12.0, 4.95]) {
																			cube(size = [2.0500000000000003, 12.0, 2.05]);
																		}
																		translate(v = [3.4499999999999997, -12.0, 4.95]) {
																			cube(size = [2.0500000000000003, 12.0, 2.05]);
																		}
																	}
																	union();
																}
															}
														}
													}
													union();
												}
											}
										}
										translate(v = [-2.5, -196.8, 7.5]) {
											cube(size = [8.0, 196.6, 3.0]);
										}
										translate(v = [-2.5, -100.0, 10.45]) {
											cube(size = [12.0, 3.0, 6.05]);
										}
									}
									union() {
										translate(v = [-4.6000000000000085, 0.1, 10.5]) {
											rotate(a = [90, 0, 0]) {
												cylinder(h = 16.2, r = 1.8);
											}
										}
										translate(v = [-4.6000000000000085, -12.0, 10.5]) {
											rotate(a = [90, 0, 0]) {
												cylinder(h = 3.2, r = 3.5235);
											}
										}
										translate(v = [4.6000000000000085, 0.1, 10.5]) {
											rotate(a = [90, 0, 0]) {
												cylinder(h = 16.2, r = 1.8);
											}
										}
										translate(v = [4.6000000000000085, -12.0, 10.5]) {
											rotate(a = [90, 0, 0]) {
												cylinder(h = 3.2, r = 3.5235);
											}
										}
										translate(v = [-4.6000000000000085, -197.1, 10.5]) {
											rotate(a = [-90, 0, 0]) {
												cylinder(h = 16.2, r = 1.8);
											}
										}
										translate(v = [-4.6000000000000085, -185.0, 10.5]) {
											rotate(a = [-90, 0, 0]) {
												cylinder(h = 3.2, r = 3.5235);
											}
										}
										translate(v = [4.6000000000000085, -197.1, 10.5]) {
											rotate(a = [-90, 0, 0]) {
												cylinder(h = 16.2, r = 1.8);
											}
										}
										translate(v = [4.6000000000000085, -185.0, 10.5]) {
											rotate(a = [-90, 0, 0]) {
												cylinder(h = 3.2, r = 3.5235);
											}
										}
									}
								}
							}
						}
					}
					union();
				}
			}
		}
	}
	union();
}
